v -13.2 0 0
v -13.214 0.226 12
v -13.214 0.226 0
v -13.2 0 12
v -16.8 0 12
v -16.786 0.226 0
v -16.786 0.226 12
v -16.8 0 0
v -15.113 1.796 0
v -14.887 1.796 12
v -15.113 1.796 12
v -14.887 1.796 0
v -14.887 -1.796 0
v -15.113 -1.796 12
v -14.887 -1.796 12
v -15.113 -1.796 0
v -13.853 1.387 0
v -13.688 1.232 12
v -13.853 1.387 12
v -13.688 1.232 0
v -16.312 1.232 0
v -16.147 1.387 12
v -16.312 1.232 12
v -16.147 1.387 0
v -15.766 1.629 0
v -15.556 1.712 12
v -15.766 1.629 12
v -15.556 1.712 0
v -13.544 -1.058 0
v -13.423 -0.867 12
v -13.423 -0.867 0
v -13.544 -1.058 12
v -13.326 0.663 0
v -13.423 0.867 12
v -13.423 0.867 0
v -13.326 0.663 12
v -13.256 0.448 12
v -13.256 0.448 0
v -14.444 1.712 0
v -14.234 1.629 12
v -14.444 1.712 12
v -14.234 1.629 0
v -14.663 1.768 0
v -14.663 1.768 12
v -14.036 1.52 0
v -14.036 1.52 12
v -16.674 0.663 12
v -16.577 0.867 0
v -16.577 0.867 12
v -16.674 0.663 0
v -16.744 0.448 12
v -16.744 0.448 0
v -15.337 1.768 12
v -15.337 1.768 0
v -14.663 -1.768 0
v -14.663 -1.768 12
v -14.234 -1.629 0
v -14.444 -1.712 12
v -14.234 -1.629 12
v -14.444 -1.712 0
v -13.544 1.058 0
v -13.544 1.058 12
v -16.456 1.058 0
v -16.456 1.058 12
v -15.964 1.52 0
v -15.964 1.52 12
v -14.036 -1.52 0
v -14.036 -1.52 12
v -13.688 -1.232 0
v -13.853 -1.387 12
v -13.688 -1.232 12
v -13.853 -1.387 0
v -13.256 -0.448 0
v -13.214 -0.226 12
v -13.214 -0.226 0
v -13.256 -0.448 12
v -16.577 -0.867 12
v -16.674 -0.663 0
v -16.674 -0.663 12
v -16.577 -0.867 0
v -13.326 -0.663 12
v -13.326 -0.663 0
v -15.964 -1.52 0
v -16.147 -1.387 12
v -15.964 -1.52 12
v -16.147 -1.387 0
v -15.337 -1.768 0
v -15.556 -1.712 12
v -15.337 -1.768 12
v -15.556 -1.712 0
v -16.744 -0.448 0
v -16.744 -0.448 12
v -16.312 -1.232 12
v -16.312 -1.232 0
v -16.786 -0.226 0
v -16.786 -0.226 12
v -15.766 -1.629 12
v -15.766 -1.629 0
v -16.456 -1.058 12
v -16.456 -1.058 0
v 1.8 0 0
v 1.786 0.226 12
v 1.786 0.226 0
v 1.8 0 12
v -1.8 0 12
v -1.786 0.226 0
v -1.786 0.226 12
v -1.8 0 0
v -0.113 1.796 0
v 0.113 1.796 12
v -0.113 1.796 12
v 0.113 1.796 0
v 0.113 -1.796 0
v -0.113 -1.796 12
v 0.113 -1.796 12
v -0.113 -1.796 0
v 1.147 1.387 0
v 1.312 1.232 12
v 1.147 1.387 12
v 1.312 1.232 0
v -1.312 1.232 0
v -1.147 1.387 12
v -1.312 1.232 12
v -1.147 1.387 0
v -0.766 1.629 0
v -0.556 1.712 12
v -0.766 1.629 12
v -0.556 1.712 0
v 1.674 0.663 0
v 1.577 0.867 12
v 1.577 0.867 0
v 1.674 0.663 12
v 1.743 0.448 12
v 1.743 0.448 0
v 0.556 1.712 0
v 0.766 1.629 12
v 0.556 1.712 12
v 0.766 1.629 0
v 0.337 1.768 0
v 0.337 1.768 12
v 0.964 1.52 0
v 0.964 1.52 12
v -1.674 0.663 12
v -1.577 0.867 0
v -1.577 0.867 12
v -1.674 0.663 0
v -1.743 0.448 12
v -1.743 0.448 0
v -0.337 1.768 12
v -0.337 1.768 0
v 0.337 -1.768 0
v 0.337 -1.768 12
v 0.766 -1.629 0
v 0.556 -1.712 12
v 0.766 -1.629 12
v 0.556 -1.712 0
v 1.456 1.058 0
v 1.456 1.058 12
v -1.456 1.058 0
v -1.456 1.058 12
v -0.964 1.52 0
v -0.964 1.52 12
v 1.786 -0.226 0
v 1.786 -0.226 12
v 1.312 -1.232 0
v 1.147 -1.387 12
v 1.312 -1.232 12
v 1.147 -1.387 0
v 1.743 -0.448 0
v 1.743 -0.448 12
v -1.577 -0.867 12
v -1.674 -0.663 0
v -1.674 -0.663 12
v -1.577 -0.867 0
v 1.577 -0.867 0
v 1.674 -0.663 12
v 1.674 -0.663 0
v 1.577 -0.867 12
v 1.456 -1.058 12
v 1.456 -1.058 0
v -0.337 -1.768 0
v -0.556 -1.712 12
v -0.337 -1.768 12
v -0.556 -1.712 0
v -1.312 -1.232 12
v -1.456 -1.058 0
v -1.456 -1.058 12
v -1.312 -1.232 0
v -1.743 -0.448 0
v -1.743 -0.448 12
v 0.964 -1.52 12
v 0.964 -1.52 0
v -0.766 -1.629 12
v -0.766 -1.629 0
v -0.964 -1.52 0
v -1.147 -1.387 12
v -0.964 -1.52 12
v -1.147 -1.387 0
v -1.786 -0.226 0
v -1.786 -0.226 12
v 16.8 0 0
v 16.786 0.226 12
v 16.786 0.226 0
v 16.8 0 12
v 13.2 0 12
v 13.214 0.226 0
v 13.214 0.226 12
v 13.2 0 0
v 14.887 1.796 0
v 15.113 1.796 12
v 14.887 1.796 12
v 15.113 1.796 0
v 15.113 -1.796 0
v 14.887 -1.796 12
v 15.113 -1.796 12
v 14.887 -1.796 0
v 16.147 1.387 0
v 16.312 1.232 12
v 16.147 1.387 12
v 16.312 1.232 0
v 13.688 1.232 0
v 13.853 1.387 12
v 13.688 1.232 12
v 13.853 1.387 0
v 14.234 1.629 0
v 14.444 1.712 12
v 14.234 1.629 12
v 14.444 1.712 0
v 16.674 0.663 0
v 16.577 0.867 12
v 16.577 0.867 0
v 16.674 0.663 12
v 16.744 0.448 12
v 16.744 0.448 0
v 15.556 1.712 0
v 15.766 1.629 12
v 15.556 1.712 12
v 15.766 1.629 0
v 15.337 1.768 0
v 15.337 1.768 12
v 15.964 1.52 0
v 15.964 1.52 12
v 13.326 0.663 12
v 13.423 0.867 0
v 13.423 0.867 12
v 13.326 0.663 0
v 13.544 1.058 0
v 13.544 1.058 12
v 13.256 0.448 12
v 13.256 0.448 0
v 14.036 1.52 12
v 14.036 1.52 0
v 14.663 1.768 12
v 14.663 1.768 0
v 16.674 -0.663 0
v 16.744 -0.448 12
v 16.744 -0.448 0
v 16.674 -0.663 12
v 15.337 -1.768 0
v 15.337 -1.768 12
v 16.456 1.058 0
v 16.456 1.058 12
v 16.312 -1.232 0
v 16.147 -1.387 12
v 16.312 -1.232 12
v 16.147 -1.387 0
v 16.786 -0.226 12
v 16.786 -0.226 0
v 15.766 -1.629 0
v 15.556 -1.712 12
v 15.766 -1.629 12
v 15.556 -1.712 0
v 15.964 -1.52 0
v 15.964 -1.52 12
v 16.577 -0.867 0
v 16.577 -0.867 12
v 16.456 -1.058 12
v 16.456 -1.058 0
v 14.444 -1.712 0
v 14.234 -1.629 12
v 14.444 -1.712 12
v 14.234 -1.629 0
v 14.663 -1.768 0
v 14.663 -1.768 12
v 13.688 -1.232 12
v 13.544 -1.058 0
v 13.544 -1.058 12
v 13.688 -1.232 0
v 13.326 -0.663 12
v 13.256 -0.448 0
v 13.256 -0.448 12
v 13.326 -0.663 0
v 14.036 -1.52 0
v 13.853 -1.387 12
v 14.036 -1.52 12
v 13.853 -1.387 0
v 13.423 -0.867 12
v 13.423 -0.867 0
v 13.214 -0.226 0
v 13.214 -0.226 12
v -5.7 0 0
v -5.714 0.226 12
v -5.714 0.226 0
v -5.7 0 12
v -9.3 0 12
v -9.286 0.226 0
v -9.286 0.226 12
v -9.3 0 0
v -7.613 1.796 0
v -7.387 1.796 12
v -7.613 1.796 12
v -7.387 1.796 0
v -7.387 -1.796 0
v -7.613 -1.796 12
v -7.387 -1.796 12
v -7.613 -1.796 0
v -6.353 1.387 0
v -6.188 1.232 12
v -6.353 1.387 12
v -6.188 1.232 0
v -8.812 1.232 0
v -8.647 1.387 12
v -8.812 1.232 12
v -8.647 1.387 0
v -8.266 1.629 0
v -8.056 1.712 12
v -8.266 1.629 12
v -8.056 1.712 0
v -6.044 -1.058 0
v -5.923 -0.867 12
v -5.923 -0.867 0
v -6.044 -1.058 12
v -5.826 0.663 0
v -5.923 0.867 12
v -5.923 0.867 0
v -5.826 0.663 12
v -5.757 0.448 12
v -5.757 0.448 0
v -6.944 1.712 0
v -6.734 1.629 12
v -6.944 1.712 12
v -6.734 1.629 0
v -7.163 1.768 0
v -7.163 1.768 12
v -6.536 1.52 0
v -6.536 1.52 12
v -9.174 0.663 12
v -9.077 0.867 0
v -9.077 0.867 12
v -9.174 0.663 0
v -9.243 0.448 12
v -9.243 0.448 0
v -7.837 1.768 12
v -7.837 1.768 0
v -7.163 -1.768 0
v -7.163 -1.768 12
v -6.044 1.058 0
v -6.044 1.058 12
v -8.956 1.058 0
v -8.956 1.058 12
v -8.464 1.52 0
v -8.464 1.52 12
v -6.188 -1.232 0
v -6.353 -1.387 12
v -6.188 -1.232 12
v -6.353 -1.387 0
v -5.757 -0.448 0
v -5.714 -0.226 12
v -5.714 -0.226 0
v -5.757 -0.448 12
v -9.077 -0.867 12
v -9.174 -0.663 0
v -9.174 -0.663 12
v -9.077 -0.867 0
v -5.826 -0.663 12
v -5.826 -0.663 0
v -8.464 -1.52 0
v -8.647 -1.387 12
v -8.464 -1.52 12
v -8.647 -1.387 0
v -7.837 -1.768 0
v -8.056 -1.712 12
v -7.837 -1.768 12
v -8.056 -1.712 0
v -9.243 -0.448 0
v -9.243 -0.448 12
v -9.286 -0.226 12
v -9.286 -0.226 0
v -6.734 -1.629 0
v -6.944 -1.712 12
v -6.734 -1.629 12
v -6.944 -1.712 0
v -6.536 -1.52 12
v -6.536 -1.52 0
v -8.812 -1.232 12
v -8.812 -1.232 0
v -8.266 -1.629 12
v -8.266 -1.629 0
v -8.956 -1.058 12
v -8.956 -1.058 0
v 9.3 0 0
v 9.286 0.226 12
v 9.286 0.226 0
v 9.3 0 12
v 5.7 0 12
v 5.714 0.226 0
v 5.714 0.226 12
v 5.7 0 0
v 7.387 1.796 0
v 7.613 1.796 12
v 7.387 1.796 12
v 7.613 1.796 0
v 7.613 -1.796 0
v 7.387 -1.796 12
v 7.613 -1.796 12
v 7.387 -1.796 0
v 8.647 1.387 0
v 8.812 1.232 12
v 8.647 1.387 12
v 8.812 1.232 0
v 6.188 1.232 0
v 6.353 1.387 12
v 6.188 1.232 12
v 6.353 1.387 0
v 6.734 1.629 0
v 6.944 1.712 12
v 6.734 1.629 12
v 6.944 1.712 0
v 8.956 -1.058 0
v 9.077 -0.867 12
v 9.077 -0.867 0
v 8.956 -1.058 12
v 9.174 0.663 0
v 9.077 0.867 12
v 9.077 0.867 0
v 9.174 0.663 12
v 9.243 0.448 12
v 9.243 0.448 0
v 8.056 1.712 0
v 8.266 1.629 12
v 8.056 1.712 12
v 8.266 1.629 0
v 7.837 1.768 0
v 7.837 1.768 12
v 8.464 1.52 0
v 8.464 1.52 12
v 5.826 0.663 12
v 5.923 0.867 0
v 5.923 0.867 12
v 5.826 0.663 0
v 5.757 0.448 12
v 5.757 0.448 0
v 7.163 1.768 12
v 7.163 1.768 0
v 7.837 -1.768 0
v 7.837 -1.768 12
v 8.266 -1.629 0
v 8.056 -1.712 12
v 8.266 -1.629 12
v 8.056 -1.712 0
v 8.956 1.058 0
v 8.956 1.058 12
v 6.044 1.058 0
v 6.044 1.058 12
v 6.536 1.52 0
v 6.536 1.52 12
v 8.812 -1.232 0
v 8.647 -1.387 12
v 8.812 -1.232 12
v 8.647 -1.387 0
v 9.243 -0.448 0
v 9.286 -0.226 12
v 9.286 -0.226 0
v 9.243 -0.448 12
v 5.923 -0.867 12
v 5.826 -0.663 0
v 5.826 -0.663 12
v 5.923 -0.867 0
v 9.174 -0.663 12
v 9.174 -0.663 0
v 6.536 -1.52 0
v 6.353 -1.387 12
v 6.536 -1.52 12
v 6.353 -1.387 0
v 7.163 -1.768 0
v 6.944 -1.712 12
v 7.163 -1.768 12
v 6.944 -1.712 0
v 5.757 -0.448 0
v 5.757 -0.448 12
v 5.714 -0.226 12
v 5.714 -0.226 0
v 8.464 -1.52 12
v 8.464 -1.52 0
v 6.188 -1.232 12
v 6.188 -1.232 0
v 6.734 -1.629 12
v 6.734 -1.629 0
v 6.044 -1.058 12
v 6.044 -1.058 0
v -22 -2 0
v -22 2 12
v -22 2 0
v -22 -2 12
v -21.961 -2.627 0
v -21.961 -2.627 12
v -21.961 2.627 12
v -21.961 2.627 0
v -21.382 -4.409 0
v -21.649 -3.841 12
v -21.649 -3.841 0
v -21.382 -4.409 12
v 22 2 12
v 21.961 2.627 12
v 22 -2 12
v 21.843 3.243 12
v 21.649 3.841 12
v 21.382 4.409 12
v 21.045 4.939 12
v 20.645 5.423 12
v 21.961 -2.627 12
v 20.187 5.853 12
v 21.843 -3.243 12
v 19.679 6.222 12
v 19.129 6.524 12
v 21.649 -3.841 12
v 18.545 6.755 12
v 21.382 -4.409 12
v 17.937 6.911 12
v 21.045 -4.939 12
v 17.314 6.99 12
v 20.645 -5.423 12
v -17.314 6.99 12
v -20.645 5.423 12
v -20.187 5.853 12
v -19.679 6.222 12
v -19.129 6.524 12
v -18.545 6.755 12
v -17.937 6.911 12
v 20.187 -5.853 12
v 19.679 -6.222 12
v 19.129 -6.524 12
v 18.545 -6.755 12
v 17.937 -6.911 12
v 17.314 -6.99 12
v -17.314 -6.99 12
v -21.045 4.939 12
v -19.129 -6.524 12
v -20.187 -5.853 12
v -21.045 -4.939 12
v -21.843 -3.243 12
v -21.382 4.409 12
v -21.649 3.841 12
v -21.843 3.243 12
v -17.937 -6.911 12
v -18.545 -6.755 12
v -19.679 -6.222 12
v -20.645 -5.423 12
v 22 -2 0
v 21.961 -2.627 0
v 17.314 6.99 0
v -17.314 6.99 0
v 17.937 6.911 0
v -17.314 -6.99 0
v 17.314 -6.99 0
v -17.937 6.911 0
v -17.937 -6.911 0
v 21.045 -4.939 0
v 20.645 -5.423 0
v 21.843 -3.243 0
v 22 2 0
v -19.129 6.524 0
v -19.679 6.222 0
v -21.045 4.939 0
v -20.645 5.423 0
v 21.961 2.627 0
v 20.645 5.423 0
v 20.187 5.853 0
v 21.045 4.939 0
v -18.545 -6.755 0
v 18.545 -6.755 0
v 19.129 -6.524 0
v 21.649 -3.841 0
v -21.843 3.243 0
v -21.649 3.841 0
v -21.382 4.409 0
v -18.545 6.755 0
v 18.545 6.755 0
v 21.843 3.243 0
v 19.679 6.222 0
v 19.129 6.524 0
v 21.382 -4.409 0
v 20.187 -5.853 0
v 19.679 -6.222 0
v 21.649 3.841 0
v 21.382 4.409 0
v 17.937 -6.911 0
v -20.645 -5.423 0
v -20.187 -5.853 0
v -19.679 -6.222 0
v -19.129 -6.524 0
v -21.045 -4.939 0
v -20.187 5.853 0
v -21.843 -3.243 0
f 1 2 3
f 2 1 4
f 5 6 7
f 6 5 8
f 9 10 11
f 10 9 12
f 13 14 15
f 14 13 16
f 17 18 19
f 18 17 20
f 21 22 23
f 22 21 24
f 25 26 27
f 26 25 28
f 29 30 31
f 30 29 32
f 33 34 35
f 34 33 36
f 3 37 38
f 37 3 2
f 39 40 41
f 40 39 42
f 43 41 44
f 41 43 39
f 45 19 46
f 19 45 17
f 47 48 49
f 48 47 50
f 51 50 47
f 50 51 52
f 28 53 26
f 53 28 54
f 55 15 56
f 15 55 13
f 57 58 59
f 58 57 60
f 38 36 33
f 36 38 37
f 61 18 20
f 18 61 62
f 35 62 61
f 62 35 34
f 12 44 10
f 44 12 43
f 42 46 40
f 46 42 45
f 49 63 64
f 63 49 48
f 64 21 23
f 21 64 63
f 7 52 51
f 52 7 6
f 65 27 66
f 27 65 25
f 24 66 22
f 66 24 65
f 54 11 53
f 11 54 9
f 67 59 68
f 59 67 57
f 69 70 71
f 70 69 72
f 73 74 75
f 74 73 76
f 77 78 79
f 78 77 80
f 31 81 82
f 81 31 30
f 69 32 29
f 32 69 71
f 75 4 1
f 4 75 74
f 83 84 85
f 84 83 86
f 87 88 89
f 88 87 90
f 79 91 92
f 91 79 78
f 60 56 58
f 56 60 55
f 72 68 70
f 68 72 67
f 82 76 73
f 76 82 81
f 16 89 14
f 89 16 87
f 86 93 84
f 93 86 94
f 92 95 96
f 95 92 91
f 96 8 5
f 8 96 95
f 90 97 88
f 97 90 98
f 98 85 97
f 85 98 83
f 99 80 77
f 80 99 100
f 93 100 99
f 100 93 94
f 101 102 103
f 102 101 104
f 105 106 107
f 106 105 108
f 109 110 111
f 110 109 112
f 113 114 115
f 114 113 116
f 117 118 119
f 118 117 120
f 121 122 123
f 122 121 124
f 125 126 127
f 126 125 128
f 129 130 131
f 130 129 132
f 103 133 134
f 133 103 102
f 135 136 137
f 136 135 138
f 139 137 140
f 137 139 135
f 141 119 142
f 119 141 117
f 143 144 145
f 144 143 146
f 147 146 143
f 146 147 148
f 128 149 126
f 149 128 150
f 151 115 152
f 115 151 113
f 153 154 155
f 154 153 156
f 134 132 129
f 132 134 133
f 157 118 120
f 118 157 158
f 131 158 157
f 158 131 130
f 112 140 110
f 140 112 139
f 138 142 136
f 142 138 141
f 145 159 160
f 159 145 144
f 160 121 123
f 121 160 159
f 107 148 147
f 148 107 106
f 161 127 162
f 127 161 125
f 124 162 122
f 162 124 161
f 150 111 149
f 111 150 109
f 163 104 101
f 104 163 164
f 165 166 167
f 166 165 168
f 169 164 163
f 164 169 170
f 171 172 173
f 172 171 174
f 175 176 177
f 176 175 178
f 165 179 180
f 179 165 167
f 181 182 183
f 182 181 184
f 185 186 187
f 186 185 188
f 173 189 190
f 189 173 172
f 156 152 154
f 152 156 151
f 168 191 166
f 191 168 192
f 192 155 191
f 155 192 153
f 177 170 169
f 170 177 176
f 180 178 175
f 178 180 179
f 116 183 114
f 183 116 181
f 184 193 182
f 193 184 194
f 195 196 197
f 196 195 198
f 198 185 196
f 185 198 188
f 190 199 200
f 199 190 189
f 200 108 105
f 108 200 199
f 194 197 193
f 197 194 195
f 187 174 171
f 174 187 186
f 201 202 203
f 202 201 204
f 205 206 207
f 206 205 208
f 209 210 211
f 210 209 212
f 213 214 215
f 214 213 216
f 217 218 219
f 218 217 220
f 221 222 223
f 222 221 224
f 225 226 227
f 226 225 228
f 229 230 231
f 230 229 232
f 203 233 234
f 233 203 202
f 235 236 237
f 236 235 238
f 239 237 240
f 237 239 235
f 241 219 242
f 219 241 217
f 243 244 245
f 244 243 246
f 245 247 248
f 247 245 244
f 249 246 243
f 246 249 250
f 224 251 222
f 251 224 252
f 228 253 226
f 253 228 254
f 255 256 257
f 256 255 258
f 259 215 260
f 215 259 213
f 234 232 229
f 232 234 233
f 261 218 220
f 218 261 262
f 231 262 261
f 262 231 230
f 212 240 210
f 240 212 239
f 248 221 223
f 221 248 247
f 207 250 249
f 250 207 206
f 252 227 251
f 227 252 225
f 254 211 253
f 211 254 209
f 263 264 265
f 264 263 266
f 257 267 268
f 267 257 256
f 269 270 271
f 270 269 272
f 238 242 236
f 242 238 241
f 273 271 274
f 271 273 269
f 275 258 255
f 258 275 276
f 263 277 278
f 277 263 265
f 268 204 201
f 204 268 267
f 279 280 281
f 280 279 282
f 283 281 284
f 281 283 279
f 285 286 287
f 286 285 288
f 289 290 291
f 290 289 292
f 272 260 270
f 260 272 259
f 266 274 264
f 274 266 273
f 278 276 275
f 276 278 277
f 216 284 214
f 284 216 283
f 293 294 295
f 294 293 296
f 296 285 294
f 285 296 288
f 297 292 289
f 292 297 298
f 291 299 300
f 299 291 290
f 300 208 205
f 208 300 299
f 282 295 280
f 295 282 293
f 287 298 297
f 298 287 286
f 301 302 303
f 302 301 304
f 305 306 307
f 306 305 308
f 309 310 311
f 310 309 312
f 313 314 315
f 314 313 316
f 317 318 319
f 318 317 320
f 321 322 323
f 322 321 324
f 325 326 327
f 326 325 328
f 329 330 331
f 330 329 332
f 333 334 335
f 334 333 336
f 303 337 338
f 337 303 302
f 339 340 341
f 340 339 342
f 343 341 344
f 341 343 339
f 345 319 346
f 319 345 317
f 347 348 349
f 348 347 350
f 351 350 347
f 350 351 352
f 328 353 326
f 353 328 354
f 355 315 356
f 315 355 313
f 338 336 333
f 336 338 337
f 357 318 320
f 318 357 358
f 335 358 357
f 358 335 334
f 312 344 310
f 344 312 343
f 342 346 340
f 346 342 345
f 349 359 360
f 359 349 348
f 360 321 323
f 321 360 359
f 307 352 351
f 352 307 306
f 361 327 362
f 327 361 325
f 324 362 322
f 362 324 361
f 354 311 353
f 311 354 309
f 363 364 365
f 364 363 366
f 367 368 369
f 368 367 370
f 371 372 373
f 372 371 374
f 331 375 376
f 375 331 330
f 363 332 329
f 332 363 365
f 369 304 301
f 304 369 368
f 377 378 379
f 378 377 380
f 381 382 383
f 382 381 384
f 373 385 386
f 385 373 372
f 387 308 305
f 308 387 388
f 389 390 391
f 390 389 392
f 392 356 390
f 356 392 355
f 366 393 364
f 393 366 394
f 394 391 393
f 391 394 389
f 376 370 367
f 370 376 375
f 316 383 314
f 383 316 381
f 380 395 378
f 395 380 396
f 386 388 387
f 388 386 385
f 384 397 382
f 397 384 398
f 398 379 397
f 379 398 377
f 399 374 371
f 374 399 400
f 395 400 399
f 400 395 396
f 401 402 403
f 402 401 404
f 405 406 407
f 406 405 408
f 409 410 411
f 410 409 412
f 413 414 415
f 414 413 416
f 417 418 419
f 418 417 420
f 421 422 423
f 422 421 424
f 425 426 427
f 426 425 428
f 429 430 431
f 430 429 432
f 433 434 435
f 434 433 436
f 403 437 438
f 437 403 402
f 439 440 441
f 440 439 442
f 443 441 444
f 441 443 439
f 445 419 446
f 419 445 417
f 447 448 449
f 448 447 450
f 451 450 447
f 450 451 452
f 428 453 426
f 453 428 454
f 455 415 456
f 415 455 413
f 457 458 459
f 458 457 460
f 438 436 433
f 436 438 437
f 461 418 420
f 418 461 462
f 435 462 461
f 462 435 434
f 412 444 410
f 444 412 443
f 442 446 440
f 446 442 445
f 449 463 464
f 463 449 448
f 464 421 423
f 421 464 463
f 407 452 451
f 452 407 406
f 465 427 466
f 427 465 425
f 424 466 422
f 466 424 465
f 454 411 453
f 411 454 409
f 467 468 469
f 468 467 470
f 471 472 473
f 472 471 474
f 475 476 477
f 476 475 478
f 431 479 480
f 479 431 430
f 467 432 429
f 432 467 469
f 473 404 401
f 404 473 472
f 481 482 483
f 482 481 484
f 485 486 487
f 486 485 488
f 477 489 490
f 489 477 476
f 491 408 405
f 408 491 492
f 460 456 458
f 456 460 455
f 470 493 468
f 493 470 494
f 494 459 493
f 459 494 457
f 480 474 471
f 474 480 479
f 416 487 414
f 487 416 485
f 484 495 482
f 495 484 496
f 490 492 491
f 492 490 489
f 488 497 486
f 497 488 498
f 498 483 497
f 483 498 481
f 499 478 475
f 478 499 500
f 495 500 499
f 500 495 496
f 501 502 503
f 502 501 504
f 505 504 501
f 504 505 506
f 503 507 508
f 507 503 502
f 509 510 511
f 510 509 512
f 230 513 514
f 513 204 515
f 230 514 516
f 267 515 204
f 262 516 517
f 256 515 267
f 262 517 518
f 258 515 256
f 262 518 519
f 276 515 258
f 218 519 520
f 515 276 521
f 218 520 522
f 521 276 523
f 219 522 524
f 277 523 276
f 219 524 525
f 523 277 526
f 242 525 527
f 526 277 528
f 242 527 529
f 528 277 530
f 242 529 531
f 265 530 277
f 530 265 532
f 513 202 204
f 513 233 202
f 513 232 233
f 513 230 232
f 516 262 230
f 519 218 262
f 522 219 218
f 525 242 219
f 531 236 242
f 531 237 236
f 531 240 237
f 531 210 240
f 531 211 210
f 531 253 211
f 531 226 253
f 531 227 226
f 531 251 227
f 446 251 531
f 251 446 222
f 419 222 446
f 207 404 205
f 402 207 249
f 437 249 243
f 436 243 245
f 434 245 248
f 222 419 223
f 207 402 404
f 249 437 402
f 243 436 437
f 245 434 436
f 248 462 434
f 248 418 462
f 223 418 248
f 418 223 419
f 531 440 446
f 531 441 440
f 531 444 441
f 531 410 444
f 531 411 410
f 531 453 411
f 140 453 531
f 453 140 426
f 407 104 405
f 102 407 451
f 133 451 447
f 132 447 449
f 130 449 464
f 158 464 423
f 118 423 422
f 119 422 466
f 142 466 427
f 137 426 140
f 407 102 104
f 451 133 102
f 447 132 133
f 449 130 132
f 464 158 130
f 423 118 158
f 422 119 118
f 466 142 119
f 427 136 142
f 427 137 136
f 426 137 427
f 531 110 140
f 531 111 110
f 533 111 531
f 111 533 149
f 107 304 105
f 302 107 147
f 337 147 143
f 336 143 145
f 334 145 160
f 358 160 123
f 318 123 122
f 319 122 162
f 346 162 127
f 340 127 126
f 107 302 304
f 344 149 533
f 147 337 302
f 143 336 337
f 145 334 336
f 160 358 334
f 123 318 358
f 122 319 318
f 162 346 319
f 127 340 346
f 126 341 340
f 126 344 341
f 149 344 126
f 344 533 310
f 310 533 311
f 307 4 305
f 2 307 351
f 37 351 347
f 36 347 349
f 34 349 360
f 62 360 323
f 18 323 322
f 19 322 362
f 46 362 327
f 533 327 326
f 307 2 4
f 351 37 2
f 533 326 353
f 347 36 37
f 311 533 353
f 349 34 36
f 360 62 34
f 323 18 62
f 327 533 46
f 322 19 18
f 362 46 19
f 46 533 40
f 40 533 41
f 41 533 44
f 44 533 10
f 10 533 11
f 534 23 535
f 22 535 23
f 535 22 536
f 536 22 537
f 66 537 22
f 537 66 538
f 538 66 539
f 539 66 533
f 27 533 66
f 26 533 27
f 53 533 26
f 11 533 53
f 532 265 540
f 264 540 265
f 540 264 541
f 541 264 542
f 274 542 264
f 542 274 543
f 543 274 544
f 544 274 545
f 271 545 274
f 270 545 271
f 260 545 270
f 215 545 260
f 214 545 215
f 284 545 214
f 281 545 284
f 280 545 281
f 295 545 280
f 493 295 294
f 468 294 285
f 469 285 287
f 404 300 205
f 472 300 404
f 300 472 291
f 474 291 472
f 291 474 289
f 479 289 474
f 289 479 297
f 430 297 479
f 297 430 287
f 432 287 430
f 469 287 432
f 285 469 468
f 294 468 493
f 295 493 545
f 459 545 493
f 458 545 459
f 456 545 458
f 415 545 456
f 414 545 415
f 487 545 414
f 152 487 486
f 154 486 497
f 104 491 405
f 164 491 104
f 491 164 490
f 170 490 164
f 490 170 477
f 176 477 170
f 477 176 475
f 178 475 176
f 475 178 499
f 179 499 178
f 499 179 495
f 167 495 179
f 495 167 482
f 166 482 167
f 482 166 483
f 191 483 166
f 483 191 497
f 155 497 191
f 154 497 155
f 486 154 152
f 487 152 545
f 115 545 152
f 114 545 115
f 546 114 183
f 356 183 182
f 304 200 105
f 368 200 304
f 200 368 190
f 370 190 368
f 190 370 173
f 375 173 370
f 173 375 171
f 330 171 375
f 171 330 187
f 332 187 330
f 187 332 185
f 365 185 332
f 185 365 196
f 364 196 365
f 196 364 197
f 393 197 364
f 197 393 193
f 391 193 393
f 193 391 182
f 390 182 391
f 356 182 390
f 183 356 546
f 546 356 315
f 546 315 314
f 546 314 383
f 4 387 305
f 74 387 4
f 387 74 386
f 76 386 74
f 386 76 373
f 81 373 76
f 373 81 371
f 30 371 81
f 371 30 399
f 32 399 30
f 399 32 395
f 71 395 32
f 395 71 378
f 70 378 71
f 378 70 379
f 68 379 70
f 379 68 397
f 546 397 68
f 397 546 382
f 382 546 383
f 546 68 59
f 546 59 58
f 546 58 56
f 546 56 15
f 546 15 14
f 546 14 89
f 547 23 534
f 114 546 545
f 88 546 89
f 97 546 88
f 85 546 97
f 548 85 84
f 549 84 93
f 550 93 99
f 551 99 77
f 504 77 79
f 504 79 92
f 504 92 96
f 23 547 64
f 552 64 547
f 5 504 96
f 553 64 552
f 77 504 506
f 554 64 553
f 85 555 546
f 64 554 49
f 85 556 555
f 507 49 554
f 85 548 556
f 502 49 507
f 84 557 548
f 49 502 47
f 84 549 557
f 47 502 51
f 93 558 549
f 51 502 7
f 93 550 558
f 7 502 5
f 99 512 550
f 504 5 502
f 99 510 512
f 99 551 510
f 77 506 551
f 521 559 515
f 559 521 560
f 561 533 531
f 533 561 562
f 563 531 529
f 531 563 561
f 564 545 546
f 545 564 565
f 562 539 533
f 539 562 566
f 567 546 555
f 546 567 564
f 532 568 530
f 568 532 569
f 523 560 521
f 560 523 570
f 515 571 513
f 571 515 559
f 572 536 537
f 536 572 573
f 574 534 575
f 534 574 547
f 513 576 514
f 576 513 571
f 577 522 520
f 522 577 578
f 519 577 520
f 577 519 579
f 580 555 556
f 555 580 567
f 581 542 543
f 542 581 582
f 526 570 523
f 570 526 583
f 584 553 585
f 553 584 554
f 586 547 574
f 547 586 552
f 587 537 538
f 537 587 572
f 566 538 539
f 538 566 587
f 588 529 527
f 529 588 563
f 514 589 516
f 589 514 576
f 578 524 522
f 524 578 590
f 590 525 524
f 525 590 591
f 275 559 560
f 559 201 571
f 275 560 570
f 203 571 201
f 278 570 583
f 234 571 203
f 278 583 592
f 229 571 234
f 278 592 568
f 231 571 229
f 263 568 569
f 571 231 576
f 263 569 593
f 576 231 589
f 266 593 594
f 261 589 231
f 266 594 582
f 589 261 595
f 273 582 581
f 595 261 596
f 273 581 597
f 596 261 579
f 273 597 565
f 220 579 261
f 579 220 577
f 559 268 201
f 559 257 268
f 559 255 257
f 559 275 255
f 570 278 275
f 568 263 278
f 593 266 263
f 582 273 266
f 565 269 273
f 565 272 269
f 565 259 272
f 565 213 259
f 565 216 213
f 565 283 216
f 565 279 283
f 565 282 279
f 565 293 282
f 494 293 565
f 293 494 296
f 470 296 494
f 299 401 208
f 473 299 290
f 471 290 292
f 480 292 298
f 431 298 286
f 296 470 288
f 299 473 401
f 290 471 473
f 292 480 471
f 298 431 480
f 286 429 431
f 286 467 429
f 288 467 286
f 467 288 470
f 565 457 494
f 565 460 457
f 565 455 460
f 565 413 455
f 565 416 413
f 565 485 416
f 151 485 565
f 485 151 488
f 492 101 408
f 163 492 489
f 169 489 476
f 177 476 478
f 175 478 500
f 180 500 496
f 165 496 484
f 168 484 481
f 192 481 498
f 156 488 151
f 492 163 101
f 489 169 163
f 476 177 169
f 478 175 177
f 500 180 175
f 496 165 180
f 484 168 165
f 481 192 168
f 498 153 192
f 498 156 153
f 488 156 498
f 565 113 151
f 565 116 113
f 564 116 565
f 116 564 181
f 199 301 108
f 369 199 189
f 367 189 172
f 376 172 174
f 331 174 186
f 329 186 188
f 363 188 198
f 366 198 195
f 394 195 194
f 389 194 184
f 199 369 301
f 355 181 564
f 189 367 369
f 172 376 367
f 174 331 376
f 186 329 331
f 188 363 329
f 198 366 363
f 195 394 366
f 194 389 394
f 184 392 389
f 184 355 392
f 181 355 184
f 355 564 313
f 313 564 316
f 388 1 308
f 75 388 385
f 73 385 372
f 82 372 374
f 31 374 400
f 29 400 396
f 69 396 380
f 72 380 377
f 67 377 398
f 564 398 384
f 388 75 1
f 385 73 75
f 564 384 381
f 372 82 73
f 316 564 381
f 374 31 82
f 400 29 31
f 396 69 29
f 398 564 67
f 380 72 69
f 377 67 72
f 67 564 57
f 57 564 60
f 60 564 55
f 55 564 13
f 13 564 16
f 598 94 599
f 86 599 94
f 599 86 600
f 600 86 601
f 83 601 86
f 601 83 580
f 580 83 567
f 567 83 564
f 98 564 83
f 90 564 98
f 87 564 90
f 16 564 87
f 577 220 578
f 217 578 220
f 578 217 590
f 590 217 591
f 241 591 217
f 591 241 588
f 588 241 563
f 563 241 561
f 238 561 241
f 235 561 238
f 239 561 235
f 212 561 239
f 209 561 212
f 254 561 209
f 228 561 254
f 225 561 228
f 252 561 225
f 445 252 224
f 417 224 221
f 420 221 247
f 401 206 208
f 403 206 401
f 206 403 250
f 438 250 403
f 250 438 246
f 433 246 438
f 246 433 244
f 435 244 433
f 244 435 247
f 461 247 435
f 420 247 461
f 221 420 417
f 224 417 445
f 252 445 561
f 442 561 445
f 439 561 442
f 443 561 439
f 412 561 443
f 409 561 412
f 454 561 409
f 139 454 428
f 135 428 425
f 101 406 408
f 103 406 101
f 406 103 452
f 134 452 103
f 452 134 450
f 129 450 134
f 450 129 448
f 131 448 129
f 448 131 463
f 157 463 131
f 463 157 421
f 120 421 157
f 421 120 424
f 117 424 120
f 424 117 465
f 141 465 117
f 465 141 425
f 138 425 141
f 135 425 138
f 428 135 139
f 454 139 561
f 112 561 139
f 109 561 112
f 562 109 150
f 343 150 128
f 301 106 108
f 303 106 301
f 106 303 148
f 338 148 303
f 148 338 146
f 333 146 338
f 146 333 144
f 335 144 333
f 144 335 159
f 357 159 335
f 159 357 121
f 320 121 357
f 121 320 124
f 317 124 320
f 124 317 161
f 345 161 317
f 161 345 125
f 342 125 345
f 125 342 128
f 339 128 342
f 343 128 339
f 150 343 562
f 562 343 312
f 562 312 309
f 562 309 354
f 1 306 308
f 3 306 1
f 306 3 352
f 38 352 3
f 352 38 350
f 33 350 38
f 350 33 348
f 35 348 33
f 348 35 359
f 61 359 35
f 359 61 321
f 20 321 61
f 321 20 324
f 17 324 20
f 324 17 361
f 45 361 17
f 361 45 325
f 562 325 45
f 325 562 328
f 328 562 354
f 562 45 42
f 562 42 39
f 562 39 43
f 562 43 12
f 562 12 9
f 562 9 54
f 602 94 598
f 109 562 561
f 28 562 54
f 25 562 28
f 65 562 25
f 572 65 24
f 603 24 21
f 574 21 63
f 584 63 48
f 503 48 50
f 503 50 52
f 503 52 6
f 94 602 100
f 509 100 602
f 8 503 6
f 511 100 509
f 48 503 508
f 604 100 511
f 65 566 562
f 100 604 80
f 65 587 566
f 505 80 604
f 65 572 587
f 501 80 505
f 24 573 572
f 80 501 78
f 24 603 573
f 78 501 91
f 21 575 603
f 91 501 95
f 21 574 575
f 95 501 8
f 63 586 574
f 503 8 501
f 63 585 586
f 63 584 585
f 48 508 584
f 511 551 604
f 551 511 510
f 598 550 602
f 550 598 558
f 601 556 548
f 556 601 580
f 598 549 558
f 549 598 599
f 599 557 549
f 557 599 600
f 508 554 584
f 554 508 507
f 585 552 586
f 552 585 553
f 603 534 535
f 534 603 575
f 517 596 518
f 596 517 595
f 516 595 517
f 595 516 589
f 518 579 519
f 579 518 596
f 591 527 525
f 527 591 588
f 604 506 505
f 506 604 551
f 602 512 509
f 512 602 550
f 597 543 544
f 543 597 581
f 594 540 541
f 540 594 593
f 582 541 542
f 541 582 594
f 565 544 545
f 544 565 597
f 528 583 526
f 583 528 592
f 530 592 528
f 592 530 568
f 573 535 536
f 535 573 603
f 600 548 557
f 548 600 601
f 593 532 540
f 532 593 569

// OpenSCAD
$fn = 50;


difference() {
	union() {
		hull() {
			translate(v = [-17.0000000000, 2.0000000000, 0]) {
				cylinder(h = 12, r = 5);
			}
			translate(v = [17.0000000000, 2.0000000000, 0]) {
				cylinder(h = 12, r = 5);
			}
			translate(v = [-17.0000000000, -2.0000000000, 0]) {
				cylinder(h = 12, r = 5);
			}
			translate(v = [17.0000000000, -2.0000000000, 0]) {
				cylinder(h = 12, r = 5);
			}
		}
	}
	union() {
		translate(v = [-15.0000000000, 0.0000000000, -100.0000000000]) {
			cylinder(h = 200, r = 1.8000000000);
		}
		translate(v = [0.0000000000, 0.0000000000, -100.0000000000]) {
			cylinder(h = 200, r = 1.8000000000);
		}
		translate(v = [15.0000000000, 0.0000000000, -100.0000000000]) {
			cylinder(h = 200, r = 1.8000000000);
		}
		translate(v = [-15.0000000000, 0.0000000000, 0]) {
			cylinder(h = 12, r = 1.8000000000);
		}
		translate(v = [-7.5000000000, 0.0000000000, 0]) {
			cylinder(h = 12, r = 1.8000000000);
		}
		cylinder(h = 12, r = 1.8000000000);
		translate(v = [7.5000000000, 0.0000000000, 0]) {
			cylinder(h = 12, r = 1.8000000000);
		}
		translate(v = [15.0000000000, 0.0000000000, 0]) {
			cylinder(h = 12, r = 1.8000000000);
		}
		translate(v = [-15.0000000000, 0.0000000000, 0]) {
			cylinder(h = 12, r = 1.8000000000);
		}
		translate(v = [-7.5000000000, 0.0000000000, 0]) {
			cylinder(h = 12, r = 1.8000000000);
		}
		cylinder(h = 12, r = 1.8000000000);
		translate(v = [7.5000000000, 0.0000000000, 0]) {
			cylinder(h = 12, r = 1.8000000000);
		}
		translate(v = [15.0000000000, 0.0000000000, 0]) {
			cylinder(h = 12, r = 1.8000000000);
		}
		translate(v = [-15.0000000000, 0.0000000000, 0]) {
			cylinder(h = 12, r = 1.8000000000);
		}
		translate(v = [-7.5000000000, 0.0000000000, 0]) {
			cylinder(h = 12, r = 1.8000000000);
		}
		cylinder(h = 12, r = 1.8000000000);
		translate(v = [7.5000000000, 0.0000000000, 0]) {
			cylinder(h = 12, r = 1.8000000000);
		}
		translate(v = [15.0000000000, 0.0000000000, 0]) {
			cylinder(h = 12, r = 1.8000000000);
		}
	}
}
